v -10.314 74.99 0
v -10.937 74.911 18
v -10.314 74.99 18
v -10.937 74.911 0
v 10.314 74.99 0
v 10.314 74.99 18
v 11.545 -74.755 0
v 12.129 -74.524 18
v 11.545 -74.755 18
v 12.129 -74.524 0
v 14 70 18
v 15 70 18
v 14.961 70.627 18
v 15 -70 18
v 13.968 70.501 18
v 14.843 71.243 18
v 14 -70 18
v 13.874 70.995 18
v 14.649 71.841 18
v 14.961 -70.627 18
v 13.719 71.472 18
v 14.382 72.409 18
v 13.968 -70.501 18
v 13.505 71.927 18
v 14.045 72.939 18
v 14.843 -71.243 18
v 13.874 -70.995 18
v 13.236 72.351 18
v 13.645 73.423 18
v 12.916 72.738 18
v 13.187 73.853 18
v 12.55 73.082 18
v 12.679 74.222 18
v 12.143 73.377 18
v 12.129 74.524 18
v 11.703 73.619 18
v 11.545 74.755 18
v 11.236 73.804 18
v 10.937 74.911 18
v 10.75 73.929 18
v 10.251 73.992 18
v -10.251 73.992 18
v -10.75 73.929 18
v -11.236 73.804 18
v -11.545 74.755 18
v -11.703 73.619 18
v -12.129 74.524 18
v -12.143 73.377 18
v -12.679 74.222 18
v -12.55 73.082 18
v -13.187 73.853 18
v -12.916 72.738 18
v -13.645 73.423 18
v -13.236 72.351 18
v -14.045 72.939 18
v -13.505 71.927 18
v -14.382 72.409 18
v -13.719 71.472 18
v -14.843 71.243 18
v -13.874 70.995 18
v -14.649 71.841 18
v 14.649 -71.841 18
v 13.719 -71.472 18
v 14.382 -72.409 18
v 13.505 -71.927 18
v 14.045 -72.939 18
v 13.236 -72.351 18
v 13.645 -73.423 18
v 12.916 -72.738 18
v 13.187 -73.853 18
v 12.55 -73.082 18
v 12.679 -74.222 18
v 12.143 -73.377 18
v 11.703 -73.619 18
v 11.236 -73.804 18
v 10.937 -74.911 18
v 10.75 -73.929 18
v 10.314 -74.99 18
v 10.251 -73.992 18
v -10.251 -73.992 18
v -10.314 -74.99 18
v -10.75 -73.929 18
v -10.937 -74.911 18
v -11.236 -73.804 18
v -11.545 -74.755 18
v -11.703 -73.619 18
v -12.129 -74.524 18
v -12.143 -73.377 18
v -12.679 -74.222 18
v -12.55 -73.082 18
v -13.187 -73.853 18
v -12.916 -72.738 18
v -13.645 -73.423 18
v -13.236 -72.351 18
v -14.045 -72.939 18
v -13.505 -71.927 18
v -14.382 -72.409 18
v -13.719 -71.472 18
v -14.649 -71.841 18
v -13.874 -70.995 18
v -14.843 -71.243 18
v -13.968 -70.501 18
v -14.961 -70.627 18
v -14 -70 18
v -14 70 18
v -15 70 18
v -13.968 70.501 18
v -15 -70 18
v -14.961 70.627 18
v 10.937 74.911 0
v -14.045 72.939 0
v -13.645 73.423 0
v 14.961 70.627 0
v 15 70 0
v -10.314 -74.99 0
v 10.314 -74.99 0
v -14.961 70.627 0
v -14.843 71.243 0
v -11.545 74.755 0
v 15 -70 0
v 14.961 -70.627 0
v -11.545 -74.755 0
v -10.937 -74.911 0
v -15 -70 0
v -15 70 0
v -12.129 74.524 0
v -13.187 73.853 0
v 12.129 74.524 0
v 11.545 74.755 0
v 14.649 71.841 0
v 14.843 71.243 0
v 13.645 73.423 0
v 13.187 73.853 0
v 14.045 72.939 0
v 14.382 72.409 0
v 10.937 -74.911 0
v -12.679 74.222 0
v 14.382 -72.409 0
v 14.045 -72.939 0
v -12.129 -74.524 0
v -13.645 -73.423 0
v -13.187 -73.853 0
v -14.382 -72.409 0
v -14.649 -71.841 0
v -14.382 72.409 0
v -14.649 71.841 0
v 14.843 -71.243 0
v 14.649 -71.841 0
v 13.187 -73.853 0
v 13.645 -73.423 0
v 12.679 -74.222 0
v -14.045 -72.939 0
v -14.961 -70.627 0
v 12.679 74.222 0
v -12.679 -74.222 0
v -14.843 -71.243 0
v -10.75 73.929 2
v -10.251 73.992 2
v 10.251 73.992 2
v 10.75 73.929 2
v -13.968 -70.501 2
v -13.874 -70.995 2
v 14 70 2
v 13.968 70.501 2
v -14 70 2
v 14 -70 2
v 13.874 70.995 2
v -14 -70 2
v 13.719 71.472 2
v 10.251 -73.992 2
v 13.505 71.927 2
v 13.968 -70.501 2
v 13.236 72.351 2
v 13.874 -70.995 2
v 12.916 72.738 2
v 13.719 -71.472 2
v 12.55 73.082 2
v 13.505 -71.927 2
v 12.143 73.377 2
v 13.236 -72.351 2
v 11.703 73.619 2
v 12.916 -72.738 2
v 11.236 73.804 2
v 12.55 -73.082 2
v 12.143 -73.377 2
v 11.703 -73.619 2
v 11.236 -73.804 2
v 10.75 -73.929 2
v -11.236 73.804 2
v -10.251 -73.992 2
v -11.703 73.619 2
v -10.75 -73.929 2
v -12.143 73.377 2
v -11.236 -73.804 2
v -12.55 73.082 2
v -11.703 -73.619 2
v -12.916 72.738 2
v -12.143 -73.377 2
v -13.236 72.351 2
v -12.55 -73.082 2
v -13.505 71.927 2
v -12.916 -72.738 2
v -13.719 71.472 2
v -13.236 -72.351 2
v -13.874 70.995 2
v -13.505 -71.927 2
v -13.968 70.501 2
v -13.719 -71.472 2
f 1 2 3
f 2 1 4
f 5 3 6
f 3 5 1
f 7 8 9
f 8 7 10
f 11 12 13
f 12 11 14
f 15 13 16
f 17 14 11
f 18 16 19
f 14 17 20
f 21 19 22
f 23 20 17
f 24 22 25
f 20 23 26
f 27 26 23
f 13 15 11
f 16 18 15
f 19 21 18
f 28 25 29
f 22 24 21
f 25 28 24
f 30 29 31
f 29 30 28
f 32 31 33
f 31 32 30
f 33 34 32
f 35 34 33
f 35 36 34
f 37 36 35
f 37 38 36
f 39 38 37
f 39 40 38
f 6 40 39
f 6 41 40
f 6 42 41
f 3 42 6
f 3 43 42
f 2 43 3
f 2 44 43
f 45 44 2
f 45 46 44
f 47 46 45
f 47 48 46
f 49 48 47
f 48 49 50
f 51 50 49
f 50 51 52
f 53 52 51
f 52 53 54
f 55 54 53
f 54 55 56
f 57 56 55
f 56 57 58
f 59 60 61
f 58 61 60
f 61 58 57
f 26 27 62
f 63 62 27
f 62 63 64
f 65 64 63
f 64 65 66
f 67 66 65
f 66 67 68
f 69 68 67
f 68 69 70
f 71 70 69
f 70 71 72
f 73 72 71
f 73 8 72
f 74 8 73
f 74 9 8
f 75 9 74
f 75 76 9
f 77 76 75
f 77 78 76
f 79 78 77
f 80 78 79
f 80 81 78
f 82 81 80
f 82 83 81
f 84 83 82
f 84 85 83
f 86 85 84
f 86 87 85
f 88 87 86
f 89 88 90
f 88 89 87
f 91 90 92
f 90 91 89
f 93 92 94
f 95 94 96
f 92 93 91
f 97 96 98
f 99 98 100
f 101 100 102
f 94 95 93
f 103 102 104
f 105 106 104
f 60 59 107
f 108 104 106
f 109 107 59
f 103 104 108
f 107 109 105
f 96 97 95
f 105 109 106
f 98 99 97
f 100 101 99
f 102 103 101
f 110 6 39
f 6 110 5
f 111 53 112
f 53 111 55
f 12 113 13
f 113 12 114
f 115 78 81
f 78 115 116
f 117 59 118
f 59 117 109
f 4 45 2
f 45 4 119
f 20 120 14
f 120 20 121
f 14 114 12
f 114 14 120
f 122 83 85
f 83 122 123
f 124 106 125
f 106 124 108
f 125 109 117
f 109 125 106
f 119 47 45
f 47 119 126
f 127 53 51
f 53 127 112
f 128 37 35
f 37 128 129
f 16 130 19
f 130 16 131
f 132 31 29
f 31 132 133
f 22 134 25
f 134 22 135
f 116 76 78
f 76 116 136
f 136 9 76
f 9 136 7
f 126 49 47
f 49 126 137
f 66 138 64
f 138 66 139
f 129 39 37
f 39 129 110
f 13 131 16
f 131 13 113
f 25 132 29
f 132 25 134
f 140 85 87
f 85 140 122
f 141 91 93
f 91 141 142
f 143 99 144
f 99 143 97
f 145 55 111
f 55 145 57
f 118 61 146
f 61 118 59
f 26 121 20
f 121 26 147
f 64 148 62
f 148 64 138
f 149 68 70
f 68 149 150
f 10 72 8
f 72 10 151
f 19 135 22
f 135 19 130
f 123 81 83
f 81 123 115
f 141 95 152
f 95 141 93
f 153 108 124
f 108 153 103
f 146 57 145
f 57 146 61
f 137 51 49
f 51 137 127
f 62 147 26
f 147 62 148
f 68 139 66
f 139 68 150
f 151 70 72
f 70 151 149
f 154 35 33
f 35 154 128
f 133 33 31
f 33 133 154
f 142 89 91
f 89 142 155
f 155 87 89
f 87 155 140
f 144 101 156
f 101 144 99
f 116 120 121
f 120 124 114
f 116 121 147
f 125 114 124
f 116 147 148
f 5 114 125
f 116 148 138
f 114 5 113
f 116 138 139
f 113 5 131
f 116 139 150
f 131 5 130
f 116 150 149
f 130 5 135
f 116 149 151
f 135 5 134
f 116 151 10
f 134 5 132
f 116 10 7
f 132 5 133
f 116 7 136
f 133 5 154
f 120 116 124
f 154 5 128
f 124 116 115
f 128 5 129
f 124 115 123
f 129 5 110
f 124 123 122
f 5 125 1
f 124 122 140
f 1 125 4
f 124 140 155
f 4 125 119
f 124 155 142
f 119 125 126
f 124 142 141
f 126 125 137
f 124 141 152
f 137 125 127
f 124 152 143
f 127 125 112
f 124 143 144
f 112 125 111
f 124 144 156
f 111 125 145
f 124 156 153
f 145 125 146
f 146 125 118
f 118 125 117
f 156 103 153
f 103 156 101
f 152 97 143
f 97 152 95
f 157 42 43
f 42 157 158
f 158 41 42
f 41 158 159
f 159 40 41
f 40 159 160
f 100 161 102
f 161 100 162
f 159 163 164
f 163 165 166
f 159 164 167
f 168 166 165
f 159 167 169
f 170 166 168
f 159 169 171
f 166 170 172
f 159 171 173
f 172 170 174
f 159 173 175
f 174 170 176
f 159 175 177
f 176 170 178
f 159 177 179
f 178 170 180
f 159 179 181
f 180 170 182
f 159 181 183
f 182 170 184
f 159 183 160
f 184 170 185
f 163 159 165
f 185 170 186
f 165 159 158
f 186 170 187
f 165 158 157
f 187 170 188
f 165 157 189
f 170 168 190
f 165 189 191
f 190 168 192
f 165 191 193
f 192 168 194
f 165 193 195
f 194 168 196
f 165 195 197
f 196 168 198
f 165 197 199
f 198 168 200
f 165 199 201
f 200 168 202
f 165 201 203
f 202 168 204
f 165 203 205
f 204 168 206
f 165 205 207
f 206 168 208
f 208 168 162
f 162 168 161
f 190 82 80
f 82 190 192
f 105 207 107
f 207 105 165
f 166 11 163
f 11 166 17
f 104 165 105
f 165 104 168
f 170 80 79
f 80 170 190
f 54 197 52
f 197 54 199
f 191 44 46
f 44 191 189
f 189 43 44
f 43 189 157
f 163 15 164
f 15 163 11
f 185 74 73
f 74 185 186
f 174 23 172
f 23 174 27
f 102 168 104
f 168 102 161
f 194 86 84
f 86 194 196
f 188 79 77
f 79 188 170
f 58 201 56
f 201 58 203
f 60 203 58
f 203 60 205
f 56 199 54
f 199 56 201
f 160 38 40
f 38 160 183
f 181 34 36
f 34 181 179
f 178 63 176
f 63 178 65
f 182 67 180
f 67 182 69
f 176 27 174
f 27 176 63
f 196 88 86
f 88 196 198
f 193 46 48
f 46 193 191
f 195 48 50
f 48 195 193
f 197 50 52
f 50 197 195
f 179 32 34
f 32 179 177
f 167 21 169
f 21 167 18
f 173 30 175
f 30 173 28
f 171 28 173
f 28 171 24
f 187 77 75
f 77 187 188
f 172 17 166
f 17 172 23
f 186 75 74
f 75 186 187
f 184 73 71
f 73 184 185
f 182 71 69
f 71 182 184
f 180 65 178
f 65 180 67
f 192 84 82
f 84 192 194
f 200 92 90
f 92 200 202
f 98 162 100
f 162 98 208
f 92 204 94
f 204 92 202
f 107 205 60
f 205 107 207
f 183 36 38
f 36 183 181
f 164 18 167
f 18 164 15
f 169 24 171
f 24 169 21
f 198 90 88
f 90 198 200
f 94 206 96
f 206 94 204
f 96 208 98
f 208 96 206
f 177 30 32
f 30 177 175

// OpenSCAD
$fn = 50;


difference() {
	union() {
		hull() {
			translate(v = [-10.0000000000, 70.0000000000, 0]) {
				cylinder(h = 18, r = 5);
			}
			translate(v = [10.0000000000, 70.0000000000, 0]) {
				cylinder(h = 18, r = 5);
			}
			translate(v = [-10.0000000000, -70.0000000000, 0]) {
				cylinder(h = 18, r = 5);
			}
			translate(v = [10.0000000000, -70.0000000000, 0]) {
				cylinder(h = 18, r = 5);
			}
		}
	}
	union() {
		translate(v = [0, 0, 2]) {
			hull() {
				translate(v = [-10.0000000000, 70.0000000000, 0]) {
					cylinder(h = 16, r = 4);
				}
				translate(v = [10.0000000000, 70.0000000000, 0]) {
					cylinder(h = 16, r = 4);
				}
				translate(v = [-10.0000000000, -70.0000000000, 0]) {
					cylinder(h = 16, r = 4);
				}
				translate(v = [10.0000000000, -70.0000000000, 0]) {
					cylinder(h = 16, r = 4);
				}
			}
		}
	}
}
